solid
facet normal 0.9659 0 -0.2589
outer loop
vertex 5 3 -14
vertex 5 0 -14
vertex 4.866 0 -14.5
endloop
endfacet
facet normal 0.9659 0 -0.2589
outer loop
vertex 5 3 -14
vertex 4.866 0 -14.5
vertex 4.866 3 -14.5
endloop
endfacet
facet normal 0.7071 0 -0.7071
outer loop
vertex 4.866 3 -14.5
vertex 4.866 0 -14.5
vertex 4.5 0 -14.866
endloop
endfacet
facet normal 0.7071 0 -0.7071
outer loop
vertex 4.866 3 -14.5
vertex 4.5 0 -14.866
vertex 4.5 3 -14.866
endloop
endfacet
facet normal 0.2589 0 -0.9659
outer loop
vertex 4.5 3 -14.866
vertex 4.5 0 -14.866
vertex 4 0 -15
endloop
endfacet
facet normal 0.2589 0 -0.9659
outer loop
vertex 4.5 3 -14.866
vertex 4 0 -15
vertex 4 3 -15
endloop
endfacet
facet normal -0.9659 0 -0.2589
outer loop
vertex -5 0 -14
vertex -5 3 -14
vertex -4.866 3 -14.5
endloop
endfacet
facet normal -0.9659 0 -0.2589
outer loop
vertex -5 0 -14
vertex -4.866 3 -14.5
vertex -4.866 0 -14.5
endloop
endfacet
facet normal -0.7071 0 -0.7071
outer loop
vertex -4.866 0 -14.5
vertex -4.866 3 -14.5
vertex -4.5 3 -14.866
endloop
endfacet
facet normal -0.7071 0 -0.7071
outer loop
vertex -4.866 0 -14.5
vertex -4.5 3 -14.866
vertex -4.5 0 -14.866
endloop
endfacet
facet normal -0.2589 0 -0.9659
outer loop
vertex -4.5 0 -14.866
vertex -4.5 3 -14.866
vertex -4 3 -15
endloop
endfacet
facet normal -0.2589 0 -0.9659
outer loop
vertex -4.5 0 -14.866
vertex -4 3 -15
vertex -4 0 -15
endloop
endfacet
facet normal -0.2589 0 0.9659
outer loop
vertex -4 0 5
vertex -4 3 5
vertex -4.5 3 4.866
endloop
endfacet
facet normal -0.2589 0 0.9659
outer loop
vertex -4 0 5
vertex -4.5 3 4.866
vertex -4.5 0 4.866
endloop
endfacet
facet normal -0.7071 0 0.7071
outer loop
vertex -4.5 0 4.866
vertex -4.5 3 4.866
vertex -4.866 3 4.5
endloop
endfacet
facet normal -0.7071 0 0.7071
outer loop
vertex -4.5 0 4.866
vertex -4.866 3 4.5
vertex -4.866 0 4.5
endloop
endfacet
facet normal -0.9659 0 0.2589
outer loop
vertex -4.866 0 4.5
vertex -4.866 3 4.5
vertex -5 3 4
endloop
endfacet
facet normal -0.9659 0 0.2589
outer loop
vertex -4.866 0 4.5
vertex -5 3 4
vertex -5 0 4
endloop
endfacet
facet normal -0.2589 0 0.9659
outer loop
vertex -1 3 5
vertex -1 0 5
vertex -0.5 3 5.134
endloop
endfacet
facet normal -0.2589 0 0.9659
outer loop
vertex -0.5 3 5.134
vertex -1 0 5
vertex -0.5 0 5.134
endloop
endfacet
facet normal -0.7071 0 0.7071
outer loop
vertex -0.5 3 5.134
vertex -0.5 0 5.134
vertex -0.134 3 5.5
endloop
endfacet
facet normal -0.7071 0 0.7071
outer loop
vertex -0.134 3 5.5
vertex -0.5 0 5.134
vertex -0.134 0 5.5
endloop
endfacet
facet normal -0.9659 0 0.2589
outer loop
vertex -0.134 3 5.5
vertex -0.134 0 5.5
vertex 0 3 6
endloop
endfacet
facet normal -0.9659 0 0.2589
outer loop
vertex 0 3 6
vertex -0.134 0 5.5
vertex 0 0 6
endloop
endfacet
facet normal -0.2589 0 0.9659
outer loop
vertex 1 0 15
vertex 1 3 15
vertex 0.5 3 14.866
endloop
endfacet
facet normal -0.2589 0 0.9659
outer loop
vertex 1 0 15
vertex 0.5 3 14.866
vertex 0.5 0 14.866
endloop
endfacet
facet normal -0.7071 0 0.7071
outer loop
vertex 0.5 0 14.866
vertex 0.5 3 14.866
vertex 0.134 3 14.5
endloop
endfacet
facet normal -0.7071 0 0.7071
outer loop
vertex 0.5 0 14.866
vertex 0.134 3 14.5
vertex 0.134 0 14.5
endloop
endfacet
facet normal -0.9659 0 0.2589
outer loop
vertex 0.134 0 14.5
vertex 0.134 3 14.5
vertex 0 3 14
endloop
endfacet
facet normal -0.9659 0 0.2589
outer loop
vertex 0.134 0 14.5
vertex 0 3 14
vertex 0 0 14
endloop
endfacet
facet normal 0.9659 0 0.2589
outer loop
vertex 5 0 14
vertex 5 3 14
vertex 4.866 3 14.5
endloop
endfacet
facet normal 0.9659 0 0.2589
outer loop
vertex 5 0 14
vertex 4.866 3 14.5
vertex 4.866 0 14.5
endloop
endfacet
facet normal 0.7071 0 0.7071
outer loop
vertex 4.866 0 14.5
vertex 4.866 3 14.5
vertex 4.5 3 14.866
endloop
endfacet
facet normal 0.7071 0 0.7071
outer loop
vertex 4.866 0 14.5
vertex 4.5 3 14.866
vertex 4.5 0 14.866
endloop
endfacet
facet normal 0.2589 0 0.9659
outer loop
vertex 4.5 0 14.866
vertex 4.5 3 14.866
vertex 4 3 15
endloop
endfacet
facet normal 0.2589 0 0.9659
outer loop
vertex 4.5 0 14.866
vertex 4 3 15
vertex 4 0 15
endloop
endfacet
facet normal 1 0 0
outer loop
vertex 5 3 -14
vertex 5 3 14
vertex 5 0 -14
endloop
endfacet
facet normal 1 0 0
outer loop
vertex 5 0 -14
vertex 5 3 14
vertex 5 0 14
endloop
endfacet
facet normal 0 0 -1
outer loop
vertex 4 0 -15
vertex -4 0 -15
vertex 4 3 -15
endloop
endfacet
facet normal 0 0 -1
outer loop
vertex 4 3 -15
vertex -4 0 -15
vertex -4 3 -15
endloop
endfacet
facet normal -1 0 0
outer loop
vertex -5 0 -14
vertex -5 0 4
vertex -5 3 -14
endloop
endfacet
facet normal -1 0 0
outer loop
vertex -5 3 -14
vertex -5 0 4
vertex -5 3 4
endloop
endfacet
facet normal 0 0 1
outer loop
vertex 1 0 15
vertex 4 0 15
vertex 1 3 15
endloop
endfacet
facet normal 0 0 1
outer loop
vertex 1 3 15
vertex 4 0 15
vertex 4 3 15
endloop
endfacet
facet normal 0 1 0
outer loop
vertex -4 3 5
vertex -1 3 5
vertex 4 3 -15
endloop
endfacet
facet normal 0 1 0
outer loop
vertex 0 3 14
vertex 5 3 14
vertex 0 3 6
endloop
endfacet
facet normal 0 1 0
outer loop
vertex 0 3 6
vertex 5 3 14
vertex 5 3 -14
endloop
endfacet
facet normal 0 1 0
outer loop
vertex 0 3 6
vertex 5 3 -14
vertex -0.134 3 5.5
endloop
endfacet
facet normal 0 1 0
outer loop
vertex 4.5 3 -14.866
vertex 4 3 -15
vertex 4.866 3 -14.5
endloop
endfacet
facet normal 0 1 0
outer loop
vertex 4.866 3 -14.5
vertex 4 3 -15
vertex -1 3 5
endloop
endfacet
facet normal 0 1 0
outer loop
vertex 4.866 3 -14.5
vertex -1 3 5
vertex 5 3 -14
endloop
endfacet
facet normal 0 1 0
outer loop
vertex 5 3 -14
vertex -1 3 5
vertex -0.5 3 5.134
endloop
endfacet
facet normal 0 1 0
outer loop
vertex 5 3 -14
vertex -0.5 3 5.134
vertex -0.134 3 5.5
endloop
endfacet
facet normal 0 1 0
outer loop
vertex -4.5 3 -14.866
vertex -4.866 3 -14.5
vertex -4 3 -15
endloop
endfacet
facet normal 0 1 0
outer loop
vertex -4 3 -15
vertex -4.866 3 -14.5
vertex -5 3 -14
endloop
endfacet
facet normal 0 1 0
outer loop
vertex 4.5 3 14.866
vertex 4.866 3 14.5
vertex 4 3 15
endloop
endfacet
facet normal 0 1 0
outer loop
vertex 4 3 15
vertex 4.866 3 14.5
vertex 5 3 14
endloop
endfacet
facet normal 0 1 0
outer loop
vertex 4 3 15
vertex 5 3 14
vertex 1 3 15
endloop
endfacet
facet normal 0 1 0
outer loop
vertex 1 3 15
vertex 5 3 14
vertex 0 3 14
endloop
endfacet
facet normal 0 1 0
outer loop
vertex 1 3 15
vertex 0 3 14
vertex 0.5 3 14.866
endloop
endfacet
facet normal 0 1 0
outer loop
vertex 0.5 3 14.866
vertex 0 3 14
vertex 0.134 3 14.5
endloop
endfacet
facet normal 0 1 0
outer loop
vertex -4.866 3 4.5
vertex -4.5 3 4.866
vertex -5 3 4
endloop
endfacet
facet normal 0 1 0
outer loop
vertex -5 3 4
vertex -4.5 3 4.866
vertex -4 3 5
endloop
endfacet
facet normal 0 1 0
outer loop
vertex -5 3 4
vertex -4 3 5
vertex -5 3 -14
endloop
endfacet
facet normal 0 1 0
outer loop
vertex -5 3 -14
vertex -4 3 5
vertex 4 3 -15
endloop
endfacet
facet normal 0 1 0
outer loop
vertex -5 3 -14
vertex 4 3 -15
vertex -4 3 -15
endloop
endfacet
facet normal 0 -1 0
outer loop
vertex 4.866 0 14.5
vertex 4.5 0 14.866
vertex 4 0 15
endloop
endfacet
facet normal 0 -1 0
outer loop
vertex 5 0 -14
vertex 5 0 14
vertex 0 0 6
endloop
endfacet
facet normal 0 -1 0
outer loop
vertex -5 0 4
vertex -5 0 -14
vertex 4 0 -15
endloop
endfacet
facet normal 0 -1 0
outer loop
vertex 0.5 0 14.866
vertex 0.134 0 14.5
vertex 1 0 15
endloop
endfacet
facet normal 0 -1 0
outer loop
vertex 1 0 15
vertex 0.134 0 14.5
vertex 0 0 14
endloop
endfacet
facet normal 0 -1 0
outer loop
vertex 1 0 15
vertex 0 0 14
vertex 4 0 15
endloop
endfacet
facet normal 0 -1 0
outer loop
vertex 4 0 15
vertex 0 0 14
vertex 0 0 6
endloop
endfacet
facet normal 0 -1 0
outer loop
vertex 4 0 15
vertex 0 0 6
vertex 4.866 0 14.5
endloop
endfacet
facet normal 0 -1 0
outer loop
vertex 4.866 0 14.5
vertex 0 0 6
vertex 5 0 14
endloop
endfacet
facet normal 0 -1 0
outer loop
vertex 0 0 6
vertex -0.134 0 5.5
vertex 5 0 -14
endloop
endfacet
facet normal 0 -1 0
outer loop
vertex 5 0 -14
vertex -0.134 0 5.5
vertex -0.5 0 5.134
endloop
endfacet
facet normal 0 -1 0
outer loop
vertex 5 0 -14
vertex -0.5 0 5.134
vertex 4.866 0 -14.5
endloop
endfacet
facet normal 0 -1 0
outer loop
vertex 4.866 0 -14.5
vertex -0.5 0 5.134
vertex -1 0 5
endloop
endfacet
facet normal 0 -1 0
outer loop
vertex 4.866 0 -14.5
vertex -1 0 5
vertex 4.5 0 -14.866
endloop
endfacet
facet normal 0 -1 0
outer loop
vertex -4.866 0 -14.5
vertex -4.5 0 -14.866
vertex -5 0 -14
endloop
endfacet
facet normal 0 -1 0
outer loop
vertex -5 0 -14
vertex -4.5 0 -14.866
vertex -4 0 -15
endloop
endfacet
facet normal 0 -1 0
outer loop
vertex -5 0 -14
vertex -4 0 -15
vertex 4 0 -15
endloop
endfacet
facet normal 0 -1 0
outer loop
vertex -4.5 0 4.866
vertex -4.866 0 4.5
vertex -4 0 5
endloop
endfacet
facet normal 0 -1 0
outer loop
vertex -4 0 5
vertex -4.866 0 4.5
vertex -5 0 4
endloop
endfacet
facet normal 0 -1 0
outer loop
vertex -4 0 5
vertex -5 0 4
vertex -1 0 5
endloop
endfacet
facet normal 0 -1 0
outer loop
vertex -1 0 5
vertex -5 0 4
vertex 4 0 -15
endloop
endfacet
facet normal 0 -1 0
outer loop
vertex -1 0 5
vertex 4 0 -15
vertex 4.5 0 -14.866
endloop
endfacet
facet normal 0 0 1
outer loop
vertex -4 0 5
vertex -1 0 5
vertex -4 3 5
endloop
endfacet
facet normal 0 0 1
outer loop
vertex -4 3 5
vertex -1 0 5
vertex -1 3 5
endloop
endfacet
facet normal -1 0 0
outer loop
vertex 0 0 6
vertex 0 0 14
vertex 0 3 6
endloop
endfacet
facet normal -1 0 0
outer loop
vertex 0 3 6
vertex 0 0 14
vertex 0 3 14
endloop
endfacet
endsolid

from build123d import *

# Parameters (mm, degrees)
ESBO_O1_W                = 10
ESBO_O1_H                = 30
RESSALTO_EXTRUS_O1_DEPTH = 3
ESBO_O2_W                = 5
ESBO_O2_H                = 10
CORTE_EXTRUS_O1_DEPTH    = 3
FILETE1_R                = 1
FILETE2_R                = 1
FILETE3_R                = 1
FILETE4_R                = 1
FILETE5_R                = 1
FILETE6_R                = 1


with BuildPart() as part:
    # Esboço1 → Ressalto-extrusão1 (new body)
    with BuildSketch(Plane(origin=(0, 0, 0), x_dir=(1, 0, 0), z_dir=(0, 1, 0))):
        Rectangle(ESBO_O1_W, ESBO_O1_H)
    extrude(amount=RESSALTO_EXTRUS_O1_DEPTH)

    # Esboço2 → Corte-extrusão1 (cut)
    with BuildSketch(Plane(origin=(0, 3, 0), x_dir=(1, 0, 0), z_dir=(0, 1, 0))):
        with Locations((-2.5, -10)):
            Rectangle(ESBO_O2_W, ESBO_O2_H)
    extrude(amount=-CORTE_EXTRUS_O1_DEPTH, mode=Mode.SUBTRACT)

    # Filete1
    filete1_edges = [part.edges().sort_by_distance(p)[0] for p in [
        (5, 1.5, 15),
    ]]
    fillet(filete1_edges, radius=FILETE1_R)

    # Filete2
    filete2_edges = [part.edges().sort_by_distance(p)[0] for p in [
        (0, 1.5, 15),
    ]]
    fillet(filete2_edges, radius=FILETE2_R)

    # Filete3
    filete3_edges = [part.edges().sort_by_distance(p)[0] for p in [
        (0, 1.5, 5),
    ]]
    fillet(filete3_edges, radius=FILETE3_R)

    # Filete4
    filete4_edges = [part.edges().sort_by_distance(p)[0] for p in [
        (-5, 1.5, 5),
    ]]
    fillet(filete4_edges, radius=FILETE4_R)

    # Filete5
    filete5_edges = [part.edges().sort_by_distance(p)[0] for p in [
        (-5, 1.5, -15),
    ]]
    fillet(filete5_edges, radius=FILETE5_R)

    # Filete6
    filete6_edges = [part.edges().sort_by_distance(p)[0] for p in [
        (5, 1.5, -15),
    ]]
    fillet(filete6_edges, radius=FILETE6_R)


solid = part.part
